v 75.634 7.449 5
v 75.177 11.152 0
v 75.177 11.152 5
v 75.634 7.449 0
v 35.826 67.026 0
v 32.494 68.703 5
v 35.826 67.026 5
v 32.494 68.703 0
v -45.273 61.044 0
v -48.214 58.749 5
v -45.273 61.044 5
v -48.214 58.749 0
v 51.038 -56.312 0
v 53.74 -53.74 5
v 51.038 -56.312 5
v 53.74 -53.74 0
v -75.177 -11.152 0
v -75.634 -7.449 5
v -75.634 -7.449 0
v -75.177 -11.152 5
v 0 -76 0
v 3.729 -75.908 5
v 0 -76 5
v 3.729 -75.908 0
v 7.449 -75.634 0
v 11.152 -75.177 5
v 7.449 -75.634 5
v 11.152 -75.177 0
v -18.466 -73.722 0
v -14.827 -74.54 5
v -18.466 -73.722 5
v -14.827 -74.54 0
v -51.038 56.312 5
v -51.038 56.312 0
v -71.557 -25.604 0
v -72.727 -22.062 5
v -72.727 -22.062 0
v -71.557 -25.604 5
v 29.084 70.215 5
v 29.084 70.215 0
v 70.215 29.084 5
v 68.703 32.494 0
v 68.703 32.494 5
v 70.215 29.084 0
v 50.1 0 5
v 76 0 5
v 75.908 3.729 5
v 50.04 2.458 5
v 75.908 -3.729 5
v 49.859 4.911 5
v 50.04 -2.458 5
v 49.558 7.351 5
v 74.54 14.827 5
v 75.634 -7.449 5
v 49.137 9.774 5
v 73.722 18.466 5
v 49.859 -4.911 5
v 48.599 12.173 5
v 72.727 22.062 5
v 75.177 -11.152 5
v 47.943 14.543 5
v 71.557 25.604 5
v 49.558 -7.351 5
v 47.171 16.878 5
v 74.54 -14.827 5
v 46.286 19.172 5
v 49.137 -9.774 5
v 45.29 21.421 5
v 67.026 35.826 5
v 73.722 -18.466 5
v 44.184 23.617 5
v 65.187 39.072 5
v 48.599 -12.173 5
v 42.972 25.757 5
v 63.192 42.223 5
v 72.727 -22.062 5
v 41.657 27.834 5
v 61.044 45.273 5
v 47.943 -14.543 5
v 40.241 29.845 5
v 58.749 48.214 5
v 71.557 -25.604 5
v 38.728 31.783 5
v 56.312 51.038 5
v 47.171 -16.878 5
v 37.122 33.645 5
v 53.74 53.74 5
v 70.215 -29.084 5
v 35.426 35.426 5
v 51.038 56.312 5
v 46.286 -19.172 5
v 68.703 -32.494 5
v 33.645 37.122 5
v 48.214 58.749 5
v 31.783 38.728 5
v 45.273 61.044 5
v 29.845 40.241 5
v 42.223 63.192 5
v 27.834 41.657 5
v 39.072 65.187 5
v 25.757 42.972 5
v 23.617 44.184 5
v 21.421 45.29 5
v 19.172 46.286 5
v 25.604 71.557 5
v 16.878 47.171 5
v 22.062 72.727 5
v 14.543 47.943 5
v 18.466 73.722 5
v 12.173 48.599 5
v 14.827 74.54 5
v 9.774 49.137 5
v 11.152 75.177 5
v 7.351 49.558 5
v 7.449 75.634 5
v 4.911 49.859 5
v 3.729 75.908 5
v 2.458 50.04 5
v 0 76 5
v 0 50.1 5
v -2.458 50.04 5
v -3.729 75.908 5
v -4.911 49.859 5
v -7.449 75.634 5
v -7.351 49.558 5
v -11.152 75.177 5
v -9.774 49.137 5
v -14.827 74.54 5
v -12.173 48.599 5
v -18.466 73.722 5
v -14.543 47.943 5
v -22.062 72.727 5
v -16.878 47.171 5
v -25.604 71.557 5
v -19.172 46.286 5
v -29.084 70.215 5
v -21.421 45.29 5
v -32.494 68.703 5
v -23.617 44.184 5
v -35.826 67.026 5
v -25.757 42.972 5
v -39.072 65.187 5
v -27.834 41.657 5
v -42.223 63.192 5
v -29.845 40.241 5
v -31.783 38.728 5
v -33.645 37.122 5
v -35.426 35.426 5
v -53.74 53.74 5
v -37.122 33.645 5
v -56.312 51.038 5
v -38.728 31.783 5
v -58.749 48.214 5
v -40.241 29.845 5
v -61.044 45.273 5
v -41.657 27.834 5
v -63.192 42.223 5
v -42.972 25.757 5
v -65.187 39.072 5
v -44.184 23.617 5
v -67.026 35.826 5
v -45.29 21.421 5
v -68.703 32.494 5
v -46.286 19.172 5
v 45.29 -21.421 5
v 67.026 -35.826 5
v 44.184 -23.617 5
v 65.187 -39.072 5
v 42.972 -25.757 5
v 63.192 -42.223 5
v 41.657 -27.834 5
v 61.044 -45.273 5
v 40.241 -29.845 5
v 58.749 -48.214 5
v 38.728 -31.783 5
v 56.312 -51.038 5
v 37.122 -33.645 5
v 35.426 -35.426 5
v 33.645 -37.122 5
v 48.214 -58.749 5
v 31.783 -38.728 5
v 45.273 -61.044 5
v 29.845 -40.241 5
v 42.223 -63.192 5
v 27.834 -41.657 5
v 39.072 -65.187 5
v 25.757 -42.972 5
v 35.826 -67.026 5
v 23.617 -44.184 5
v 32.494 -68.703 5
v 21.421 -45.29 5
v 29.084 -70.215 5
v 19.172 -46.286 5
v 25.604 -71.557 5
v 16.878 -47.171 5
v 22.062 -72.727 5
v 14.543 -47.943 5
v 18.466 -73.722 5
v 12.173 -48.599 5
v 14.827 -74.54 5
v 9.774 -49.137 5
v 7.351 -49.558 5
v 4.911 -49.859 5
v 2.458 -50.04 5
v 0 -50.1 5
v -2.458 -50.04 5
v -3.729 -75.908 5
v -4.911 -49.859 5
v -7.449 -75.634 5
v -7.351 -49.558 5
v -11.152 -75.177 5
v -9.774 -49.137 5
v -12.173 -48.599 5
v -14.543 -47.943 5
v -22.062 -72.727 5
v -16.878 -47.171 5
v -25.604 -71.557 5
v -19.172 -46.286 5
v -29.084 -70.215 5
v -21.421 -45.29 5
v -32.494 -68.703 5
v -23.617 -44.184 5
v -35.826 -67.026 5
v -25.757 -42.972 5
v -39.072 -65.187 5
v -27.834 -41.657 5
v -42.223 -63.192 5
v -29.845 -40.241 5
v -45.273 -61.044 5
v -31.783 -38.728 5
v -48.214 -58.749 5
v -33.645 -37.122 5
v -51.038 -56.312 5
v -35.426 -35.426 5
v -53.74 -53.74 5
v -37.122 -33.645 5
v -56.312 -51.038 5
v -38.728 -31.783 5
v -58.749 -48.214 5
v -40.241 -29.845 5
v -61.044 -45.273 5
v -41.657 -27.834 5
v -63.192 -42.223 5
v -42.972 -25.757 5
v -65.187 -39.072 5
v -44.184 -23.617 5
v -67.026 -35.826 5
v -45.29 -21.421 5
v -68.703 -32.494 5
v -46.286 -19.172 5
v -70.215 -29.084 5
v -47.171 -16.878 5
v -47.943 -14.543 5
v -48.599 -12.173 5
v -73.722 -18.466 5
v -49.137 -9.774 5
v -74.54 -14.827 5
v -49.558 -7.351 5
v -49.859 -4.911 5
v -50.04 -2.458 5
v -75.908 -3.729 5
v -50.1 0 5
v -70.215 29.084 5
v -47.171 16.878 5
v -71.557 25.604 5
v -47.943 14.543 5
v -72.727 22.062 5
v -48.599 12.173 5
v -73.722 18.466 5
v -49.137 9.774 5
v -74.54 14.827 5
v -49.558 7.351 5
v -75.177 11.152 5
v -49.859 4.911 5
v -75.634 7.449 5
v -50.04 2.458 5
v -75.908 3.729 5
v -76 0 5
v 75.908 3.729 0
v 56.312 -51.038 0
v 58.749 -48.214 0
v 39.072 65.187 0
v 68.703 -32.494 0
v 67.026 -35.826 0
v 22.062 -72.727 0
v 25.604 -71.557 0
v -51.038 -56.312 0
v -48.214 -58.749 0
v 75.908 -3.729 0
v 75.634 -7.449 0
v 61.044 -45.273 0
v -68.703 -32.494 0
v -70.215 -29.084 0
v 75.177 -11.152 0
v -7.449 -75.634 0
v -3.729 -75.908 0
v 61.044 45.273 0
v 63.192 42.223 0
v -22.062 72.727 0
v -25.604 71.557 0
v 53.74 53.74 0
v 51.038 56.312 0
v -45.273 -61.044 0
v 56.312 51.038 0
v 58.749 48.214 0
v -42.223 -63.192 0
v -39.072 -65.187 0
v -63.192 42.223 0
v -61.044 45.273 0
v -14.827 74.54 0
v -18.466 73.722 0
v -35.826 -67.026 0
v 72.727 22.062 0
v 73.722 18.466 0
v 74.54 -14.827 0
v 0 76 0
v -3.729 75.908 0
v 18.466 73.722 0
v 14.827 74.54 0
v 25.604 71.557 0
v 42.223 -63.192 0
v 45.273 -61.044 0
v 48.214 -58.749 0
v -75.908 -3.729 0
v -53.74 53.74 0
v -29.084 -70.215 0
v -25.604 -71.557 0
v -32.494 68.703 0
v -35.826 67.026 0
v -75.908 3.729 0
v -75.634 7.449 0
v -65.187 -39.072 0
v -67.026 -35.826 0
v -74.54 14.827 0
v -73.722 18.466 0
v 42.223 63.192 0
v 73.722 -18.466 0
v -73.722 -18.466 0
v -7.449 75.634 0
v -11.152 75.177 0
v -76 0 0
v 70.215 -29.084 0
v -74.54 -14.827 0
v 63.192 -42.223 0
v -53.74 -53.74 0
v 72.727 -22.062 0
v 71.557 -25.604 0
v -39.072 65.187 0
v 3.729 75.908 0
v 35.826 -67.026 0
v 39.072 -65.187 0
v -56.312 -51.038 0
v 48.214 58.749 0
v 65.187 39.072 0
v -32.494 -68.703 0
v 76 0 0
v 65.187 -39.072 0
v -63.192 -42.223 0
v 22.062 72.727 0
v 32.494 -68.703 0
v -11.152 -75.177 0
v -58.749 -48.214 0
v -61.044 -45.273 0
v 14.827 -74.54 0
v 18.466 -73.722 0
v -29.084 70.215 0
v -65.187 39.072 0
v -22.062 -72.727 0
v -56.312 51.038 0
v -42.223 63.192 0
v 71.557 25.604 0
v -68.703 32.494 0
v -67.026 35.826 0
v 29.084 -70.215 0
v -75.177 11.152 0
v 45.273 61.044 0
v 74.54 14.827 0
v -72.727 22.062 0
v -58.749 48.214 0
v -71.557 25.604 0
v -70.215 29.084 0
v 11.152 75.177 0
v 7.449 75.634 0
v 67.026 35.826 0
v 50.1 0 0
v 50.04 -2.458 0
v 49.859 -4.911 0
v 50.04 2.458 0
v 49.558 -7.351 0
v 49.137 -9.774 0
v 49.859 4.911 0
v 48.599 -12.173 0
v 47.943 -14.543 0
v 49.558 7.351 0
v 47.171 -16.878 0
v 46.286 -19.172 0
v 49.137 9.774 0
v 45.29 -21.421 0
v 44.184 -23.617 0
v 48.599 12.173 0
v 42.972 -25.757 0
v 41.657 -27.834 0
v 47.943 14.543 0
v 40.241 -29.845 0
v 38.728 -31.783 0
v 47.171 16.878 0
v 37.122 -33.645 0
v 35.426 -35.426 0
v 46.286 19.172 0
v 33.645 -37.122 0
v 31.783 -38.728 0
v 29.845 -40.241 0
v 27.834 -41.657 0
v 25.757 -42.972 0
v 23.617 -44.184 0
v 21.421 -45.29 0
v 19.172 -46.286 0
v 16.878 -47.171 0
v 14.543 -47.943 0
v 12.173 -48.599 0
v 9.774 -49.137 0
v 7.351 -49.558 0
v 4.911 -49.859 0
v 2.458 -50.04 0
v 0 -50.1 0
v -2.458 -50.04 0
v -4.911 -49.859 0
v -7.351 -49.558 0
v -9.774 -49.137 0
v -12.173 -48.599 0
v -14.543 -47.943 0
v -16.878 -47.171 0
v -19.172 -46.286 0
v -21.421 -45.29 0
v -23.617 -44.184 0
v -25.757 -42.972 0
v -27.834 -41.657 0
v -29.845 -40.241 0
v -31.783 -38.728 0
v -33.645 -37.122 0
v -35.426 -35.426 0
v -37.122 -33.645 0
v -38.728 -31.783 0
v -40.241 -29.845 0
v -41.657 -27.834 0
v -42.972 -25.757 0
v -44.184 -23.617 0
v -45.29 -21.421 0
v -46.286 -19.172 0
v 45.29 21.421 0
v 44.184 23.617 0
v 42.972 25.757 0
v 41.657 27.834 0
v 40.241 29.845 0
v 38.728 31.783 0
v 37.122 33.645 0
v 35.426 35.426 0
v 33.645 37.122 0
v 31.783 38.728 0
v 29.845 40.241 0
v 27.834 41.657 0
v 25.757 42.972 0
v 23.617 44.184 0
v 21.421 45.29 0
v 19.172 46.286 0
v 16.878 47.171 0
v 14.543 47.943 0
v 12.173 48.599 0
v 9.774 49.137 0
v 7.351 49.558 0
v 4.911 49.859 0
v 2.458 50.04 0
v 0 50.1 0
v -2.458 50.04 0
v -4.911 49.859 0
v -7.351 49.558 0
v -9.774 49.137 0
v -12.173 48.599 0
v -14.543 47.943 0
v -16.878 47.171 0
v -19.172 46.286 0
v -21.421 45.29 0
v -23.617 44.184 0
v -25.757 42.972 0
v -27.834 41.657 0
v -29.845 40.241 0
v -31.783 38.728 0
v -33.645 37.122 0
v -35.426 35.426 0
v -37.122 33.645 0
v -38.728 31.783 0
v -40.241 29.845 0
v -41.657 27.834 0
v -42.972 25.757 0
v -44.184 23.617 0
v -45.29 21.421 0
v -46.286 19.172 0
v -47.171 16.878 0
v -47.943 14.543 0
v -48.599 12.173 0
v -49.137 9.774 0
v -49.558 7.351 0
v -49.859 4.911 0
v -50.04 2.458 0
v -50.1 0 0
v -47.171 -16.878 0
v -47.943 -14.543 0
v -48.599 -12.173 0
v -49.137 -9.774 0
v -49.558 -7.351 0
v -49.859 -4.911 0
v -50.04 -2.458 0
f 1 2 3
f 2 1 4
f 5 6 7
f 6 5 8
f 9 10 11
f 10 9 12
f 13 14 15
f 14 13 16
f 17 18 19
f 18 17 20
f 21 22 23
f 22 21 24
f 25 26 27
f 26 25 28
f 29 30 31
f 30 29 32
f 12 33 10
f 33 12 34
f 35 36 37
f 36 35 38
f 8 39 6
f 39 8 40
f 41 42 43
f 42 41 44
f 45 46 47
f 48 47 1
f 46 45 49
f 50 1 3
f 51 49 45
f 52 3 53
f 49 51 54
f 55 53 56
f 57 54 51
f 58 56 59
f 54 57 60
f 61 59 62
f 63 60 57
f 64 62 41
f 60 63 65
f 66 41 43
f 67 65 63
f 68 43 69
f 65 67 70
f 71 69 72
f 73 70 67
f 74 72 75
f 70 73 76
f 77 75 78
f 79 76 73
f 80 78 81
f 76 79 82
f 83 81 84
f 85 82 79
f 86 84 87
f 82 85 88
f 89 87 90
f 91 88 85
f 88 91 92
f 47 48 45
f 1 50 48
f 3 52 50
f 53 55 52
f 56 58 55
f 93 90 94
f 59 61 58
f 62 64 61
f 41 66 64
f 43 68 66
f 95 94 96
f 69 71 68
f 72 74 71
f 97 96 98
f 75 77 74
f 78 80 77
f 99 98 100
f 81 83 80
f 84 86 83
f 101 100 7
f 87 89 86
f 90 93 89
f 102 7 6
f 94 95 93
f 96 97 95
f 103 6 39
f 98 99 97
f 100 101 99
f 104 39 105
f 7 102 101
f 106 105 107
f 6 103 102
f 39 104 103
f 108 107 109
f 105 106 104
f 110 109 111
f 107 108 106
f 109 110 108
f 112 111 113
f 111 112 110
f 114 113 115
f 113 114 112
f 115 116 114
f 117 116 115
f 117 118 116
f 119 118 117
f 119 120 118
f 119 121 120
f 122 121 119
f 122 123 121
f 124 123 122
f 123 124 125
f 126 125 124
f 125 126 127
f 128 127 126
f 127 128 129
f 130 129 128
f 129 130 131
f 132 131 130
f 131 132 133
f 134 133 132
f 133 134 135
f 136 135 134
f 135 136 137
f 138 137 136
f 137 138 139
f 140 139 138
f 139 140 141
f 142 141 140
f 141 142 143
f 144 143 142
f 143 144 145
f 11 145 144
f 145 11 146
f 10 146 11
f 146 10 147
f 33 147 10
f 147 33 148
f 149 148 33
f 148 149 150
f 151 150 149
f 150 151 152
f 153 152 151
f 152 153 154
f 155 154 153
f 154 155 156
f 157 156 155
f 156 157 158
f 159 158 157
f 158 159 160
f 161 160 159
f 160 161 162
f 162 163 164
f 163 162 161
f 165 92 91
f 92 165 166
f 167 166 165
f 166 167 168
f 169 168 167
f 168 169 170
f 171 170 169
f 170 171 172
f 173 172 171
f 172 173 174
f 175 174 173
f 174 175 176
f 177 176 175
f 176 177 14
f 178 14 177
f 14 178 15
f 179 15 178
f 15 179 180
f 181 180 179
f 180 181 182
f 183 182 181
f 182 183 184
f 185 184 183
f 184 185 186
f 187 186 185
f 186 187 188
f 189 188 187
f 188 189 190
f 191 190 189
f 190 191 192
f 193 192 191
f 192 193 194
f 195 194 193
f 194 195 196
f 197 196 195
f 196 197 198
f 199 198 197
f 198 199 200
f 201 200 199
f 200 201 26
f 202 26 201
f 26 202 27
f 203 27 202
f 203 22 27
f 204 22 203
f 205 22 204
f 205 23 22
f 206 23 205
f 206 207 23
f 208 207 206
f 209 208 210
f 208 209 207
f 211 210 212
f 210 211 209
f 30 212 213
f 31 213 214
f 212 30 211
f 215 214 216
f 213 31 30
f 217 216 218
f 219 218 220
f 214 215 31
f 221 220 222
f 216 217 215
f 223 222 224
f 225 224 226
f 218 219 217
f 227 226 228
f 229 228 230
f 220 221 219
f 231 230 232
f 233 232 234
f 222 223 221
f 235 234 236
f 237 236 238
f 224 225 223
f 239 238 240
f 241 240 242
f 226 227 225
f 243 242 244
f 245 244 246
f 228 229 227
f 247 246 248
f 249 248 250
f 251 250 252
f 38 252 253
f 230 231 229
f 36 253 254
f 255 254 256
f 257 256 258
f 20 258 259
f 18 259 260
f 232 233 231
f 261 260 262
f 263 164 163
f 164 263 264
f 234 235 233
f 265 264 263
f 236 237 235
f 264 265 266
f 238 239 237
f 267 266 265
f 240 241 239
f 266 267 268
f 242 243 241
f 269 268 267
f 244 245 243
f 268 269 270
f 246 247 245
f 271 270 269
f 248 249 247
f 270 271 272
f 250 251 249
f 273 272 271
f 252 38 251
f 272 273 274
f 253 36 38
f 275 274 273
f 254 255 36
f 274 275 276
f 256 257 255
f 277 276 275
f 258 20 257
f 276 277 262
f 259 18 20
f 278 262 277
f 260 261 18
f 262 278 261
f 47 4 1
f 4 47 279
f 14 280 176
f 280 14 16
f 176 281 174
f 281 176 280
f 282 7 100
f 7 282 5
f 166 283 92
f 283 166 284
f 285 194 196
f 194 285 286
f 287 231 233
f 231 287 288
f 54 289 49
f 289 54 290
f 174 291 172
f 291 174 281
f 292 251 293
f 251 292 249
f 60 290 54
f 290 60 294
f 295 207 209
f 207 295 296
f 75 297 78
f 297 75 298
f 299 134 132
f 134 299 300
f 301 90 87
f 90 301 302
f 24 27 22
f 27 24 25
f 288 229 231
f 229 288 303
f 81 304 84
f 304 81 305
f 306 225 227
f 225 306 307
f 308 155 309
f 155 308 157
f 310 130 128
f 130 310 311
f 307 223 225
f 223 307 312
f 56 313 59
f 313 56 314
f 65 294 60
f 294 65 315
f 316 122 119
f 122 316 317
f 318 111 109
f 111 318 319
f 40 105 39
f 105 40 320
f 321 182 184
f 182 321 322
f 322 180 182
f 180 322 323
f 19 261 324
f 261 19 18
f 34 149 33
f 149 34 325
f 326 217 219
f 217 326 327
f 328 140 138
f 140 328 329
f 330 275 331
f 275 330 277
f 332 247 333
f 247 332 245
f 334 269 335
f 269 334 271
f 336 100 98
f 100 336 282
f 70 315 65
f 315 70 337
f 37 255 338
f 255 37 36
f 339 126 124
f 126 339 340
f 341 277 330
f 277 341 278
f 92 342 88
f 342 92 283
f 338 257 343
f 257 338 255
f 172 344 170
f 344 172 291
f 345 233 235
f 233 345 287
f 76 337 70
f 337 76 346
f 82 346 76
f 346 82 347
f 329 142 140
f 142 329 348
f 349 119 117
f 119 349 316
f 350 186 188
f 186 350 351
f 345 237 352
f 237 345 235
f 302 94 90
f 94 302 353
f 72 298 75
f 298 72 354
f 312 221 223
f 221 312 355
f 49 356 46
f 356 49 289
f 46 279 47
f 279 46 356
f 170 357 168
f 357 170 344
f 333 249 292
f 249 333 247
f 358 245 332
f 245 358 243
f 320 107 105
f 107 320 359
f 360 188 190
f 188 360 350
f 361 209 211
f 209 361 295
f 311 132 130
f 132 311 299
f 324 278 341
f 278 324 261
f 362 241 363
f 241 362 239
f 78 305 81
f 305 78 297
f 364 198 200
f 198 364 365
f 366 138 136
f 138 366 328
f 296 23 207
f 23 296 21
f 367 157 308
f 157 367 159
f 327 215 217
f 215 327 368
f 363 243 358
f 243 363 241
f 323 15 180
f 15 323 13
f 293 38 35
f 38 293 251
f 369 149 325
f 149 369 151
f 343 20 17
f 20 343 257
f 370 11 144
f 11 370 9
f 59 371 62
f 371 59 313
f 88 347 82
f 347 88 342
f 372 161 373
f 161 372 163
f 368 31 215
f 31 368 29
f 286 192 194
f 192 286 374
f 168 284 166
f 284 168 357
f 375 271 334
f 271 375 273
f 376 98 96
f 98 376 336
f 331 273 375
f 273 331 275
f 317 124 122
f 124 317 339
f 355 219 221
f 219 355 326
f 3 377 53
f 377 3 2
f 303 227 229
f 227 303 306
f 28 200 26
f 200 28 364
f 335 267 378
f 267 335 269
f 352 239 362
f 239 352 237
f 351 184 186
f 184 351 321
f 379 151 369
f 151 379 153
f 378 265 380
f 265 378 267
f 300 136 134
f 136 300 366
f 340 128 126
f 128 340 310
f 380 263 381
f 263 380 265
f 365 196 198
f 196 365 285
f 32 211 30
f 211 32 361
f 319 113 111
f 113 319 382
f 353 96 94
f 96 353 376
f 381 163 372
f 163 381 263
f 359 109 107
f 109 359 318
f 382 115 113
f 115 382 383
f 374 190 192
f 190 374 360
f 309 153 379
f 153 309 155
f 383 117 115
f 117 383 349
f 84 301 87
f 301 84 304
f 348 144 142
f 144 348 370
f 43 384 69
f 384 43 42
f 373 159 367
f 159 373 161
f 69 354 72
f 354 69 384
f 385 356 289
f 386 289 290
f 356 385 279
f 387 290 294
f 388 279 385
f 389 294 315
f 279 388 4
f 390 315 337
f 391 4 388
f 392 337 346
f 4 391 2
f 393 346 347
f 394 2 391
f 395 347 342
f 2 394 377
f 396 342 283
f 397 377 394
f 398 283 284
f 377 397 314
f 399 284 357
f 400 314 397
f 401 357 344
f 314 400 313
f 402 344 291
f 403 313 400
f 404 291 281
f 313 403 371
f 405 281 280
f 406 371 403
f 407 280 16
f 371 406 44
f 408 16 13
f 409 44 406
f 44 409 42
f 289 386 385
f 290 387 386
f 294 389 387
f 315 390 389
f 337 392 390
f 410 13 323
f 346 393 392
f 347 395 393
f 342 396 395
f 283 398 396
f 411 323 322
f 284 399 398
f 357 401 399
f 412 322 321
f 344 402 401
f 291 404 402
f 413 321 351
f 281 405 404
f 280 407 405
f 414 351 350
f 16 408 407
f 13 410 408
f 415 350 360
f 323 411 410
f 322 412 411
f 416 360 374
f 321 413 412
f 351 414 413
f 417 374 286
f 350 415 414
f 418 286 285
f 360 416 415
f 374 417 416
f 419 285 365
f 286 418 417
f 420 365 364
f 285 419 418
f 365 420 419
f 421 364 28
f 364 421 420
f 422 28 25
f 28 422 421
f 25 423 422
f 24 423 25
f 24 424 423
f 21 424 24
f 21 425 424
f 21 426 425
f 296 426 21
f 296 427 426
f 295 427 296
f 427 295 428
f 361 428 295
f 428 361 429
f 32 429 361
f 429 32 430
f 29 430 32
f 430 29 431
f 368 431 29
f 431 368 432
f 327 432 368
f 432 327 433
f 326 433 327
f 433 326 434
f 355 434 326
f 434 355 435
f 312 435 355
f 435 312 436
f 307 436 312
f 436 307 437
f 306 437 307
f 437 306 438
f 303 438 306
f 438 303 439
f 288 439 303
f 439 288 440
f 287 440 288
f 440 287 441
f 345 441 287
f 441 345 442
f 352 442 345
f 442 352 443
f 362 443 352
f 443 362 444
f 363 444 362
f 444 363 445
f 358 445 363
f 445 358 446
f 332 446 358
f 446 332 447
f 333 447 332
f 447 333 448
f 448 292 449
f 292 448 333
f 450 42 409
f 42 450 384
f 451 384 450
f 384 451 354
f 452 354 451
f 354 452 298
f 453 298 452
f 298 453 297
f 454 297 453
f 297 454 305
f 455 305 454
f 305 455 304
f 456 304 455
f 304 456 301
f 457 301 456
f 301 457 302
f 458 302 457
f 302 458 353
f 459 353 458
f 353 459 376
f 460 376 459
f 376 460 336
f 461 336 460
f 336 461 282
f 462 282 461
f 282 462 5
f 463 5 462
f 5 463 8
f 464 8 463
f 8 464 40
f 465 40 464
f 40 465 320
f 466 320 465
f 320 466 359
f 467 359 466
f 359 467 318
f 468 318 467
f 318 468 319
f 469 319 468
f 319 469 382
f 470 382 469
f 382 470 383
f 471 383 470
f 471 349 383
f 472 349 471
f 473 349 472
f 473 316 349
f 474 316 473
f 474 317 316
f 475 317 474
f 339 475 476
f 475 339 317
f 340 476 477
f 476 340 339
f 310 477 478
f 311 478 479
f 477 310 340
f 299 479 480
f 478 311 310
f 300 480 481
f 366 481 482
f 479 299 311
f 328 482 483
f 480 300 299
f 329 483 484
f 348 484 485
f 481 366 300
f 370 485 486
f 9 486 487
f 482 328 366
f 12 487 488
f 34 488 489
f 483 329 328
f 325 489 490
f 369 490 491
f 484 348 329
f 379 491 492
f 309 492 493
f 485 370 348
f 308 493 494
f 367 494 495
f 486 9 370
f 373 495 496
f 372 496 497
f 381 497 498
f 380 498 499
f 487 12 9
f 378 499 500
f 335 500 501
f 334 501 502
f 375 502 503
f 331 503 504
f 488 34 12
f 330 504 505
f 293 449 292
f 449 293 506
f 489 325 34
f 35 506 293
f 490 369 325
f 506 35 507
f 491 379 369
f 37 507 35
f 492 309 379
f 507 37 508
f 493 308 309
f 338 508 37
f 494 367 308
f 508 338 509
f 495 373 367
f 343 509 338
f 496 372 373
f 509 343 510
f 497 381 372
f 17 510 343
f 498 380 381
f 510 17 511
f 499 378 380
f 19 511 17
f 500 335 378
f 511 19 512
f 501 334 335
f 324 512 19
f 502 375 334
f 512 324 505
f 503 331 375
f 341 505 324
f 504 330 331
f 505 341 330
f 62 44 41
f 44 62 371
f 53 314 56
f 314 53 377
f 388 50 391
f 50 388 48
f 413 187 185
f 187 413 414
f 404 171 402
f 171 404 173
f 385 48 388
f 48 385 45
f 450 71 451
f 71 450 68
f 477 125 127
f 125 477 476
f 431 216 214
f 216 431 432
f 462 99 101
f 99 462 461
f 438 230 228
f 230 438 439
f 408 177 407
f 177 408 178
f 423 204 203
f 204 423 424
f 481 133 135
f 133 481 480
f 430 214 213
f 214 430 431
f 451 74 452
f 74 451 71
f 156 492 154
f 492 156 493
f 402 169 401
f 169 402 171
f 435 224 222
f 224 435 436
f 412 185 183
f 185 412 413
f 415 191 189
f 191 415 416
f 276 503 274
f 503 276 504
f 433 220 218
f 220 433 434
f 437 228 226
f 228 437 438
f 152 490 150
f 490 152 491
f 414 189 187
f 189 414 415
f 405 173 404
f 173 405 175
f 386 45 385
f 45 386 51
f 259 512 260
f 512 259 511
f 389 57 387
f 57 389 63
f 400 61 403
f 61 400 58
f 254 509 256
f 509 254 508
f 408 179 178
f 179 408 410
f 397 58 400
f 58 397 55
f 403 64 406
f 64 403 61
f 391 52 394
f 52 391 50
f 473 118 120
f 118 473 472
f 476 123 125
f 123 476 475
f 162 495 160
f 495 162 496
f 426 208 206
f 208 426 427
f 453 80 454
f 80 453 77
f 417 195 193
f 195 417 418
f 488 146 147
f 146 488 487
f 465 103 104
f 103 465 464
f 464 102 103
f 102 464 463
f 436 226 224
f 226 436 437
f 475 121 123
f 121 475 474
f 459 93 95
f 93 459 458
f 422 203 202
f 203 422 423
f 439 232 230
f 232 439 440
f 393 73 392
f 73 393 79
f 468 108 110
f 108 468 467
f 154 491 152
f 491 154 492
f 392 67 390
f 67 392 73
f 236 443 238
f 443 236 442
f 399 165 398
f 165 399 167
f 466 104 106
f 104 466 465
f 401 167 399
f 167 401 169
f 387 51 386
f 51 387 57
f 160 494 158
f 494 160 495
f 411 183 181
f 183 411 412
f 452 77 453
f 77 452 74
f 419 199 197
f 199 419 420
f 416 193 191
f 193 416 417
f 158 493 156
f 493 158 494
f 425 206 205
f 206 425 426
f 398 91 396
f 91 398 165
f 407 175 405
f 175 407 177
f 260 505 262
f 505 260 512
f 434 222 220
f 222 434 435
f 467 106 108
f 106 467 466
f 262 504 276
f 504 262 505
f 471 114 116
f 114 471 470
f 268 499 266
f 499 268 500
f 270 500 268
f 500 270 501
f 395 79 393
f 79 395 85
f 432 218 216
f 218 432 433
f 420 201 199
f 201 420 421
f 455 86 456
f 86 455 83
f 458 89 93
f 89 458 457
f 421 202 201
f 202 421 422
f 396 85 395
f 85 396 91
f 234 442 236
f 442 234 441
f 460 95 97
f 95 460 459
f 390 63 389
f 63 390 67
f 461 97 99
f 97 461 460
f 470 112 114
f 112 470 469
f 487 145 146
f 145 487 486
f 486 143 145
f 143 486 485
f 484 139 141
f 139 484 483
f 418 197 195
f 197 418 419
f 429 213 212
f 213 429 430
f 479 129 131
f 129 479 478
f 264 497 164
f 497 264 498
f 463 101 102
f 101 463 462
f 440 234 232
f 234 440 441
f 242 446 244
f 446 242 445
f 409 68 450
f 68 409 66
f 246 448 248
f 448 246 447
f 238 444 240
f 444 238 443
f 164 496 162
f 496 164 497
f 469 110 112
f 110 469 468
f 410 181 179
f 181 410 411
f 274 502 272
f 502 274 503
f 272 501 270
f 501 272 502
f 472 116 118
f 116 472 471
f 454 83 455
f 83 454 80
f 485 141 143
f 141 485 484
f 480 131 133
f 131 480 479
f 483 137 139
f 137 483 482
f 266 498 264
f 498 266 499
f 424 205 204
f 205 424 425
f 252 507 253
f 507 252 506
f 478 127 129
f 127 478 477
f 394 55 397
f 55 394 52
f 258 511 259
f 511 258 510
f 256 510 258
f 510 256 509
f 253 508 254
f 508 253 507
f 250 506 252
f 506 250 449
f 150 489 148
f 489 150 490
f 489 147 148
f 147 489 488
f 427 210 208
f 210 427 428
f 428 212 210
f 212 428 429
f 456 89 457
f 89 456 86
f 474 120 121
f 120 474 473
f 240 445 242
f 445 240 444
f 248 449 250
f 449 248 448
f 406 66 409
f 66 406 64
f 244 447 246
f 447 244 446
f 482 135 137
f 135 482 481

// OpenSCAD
/*
 * 30mm to Olympic Barbell (50mm) adapter 
 * Upper stopper ring
 *
 * Hantelscheibe:
 *  - Breite: 75 mm
 *
 *
 * Olympic barbell weight ending specs:
 *  - 49.4 mm - 49.56 mm diameter
 *  - 431.79 mm length
 *  - 41.27 mm stopper length
 */
 
$fn = 128;
stopper_height = 5;
outer_diameter = 50.1;
stopper_diameter = 76;

difference() {
    linear_extrude(stopper_height) circle(stopper_diameter);
    linear_extrude(stopper_height) circle(outer_diameter);
}
